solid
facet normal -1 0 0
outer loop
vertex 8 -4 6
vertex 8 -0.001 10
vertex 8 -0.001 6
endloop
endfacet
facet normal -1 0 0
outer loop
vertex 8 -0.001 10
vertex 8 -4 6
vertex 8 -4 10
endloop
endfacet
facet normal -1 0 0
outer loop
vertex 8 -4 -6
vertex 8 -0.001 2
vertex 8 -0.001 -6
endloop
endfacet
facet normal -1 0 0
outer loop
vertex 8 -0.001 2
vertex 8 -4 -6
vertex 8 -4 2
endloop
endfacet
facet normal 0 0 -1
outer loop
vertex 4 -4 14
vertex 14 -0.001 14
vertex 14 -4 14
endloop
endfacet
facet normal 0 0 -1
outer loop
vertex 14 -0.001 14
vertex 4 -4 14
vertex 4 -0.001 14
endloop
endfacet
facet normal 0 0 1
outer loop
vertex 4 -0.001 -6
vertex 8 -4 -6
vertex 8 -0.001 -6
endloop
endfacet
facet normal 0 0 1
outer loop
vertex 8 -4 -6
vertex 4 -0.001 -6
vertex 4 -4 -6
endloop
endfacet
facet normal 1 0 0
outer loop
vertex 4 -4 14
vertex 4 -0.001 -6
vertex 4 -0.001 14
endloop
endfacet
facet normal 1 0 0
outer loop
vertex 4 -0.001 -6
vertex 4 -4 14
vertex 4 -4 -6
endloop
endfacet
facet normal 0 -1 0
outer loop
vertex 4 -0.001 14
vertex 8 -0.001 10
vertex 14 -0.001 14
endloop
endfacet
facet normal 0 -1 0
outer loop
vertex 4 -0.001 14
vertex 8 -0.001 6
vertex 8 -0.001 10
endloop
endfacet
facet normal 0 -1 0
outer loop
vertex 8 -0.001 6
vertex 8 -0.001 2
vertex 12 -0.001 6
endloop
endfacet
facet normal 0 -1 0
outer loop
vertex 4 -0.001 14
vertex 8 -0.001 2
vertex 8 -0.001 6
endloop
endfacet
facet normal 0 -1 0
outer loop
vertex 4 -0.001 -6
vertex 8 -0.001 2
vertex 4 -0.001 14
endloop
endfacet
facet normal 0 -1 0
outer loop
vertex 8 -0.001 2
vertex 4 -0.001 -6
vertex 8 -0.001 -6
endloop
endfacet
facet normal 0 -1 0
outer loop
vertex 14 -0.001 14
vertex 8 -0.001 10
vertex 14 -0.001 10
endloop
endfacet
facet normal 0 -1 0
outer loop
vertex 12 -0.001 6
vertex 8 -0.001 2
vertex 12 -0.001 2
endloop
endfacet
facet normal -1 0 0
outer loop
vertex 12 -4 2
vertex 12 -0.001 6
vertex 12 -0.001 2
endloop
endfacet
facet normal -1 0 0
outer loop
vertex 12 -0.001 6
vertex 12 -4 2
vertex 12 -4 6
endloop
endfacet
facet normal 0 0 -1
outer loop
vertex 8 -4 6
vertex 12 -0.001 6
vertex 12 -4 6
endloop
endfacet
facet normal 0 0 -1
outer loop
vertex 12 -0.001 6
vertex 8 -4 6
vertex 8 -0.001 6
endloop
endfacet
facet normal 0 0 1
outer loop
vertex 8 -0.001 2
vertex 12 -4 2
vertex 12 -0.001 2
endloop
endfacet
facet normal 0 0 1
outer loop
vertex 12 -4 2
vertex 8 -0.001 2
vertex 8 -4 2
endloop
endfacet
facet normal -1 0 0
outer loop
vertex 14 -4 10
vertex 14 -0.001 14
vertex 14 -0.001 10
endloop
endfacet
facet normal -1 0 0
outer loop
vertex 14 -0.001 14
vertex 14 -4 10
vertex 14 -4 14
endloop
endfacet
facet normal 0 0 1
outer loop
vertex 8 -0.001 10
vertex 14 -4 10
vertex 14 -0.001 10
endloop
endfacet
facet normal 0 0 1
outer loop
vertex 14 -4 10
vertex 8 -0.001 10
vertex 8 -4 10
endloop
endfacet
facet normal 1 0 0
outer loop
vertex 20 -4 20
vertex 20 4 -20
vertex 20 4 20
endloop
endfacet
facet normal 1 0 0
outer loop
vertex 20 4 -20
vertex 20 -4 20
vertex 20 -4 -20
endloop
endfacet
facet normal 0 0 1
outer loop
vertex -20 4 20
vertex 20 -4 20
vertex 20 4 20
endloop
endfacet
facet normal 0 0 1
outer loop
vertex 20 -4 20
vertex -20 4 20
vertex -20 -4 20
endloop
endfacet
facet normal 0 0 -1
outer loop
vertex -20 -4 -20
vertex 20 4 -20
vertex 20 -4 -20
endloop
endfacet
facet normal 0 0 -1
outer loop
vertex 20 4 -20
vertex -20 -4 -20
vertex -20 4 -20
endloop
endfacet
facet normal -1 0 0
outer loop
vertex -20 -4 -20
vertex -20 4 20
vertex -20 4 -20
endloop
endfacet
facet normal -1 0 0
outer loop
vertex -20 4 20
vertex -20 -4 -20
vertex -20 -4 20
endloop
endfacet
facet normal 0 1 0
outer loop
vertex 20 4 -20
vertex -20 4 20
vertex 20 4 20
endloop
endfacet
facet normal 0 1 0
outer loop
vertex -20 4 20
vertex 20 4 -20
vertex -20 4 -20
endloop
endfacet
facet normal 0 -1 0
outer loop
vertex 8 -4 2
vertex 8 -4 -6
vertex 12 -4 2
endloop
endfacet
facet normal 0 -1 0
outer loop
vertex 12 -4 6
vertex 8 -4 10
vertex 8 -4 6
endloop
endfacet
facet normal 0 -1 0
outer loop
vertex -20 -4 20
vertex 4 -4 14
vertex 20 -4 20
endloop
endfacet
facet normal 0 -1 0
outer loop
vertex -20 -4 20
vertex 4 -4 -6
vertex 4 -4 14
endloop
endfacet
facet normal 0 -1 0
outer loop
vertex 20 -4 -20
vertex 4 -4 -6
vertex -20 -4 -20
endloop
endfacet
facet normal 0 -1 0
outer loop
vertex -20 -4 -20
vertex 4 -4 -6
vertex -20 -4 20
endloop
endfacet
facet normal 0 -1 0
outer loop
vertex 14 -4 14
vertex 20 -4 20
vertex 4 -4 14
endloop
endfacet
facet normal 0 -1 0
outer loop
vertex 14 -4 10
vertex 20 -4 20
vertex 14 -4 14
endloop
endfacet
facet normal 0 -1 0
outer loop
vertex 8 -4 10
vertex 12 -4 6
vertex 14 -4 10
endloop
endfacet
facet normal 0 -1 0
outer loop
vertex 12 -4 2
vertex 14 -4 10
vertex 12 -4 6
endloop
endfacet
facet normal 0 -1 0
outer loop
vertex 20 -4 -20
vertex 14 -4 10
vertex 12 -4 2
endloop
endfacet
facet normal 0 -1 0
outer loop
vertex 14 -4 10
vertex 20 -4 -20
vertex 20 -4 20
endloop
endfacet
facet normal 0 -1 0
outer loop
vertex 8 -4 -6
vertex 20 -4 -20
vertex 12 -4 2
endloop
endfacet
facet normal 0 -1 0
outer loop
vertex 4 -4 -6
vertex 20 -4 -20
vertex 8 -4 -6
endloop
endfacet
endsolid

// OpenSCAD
// file: letters.scad
module wall()
{
     translate ([-20, -4, -20]) cube ([40, 8, 40]) ;
}

module letterF()
{
     translate([-5, -2, -10]) {
          cube ([4, 4, 20]) ;
          translate ([4, 0, 8]) cube ([4, 4, 4]) ;
          translate ([4, 0, 16]) cube ([6, 4, 4]) ;
     }
}
// main file
include<letters.scad>

difference ()
{
     wall();
     translate([9, -2.001, 4]) letterF();
}
